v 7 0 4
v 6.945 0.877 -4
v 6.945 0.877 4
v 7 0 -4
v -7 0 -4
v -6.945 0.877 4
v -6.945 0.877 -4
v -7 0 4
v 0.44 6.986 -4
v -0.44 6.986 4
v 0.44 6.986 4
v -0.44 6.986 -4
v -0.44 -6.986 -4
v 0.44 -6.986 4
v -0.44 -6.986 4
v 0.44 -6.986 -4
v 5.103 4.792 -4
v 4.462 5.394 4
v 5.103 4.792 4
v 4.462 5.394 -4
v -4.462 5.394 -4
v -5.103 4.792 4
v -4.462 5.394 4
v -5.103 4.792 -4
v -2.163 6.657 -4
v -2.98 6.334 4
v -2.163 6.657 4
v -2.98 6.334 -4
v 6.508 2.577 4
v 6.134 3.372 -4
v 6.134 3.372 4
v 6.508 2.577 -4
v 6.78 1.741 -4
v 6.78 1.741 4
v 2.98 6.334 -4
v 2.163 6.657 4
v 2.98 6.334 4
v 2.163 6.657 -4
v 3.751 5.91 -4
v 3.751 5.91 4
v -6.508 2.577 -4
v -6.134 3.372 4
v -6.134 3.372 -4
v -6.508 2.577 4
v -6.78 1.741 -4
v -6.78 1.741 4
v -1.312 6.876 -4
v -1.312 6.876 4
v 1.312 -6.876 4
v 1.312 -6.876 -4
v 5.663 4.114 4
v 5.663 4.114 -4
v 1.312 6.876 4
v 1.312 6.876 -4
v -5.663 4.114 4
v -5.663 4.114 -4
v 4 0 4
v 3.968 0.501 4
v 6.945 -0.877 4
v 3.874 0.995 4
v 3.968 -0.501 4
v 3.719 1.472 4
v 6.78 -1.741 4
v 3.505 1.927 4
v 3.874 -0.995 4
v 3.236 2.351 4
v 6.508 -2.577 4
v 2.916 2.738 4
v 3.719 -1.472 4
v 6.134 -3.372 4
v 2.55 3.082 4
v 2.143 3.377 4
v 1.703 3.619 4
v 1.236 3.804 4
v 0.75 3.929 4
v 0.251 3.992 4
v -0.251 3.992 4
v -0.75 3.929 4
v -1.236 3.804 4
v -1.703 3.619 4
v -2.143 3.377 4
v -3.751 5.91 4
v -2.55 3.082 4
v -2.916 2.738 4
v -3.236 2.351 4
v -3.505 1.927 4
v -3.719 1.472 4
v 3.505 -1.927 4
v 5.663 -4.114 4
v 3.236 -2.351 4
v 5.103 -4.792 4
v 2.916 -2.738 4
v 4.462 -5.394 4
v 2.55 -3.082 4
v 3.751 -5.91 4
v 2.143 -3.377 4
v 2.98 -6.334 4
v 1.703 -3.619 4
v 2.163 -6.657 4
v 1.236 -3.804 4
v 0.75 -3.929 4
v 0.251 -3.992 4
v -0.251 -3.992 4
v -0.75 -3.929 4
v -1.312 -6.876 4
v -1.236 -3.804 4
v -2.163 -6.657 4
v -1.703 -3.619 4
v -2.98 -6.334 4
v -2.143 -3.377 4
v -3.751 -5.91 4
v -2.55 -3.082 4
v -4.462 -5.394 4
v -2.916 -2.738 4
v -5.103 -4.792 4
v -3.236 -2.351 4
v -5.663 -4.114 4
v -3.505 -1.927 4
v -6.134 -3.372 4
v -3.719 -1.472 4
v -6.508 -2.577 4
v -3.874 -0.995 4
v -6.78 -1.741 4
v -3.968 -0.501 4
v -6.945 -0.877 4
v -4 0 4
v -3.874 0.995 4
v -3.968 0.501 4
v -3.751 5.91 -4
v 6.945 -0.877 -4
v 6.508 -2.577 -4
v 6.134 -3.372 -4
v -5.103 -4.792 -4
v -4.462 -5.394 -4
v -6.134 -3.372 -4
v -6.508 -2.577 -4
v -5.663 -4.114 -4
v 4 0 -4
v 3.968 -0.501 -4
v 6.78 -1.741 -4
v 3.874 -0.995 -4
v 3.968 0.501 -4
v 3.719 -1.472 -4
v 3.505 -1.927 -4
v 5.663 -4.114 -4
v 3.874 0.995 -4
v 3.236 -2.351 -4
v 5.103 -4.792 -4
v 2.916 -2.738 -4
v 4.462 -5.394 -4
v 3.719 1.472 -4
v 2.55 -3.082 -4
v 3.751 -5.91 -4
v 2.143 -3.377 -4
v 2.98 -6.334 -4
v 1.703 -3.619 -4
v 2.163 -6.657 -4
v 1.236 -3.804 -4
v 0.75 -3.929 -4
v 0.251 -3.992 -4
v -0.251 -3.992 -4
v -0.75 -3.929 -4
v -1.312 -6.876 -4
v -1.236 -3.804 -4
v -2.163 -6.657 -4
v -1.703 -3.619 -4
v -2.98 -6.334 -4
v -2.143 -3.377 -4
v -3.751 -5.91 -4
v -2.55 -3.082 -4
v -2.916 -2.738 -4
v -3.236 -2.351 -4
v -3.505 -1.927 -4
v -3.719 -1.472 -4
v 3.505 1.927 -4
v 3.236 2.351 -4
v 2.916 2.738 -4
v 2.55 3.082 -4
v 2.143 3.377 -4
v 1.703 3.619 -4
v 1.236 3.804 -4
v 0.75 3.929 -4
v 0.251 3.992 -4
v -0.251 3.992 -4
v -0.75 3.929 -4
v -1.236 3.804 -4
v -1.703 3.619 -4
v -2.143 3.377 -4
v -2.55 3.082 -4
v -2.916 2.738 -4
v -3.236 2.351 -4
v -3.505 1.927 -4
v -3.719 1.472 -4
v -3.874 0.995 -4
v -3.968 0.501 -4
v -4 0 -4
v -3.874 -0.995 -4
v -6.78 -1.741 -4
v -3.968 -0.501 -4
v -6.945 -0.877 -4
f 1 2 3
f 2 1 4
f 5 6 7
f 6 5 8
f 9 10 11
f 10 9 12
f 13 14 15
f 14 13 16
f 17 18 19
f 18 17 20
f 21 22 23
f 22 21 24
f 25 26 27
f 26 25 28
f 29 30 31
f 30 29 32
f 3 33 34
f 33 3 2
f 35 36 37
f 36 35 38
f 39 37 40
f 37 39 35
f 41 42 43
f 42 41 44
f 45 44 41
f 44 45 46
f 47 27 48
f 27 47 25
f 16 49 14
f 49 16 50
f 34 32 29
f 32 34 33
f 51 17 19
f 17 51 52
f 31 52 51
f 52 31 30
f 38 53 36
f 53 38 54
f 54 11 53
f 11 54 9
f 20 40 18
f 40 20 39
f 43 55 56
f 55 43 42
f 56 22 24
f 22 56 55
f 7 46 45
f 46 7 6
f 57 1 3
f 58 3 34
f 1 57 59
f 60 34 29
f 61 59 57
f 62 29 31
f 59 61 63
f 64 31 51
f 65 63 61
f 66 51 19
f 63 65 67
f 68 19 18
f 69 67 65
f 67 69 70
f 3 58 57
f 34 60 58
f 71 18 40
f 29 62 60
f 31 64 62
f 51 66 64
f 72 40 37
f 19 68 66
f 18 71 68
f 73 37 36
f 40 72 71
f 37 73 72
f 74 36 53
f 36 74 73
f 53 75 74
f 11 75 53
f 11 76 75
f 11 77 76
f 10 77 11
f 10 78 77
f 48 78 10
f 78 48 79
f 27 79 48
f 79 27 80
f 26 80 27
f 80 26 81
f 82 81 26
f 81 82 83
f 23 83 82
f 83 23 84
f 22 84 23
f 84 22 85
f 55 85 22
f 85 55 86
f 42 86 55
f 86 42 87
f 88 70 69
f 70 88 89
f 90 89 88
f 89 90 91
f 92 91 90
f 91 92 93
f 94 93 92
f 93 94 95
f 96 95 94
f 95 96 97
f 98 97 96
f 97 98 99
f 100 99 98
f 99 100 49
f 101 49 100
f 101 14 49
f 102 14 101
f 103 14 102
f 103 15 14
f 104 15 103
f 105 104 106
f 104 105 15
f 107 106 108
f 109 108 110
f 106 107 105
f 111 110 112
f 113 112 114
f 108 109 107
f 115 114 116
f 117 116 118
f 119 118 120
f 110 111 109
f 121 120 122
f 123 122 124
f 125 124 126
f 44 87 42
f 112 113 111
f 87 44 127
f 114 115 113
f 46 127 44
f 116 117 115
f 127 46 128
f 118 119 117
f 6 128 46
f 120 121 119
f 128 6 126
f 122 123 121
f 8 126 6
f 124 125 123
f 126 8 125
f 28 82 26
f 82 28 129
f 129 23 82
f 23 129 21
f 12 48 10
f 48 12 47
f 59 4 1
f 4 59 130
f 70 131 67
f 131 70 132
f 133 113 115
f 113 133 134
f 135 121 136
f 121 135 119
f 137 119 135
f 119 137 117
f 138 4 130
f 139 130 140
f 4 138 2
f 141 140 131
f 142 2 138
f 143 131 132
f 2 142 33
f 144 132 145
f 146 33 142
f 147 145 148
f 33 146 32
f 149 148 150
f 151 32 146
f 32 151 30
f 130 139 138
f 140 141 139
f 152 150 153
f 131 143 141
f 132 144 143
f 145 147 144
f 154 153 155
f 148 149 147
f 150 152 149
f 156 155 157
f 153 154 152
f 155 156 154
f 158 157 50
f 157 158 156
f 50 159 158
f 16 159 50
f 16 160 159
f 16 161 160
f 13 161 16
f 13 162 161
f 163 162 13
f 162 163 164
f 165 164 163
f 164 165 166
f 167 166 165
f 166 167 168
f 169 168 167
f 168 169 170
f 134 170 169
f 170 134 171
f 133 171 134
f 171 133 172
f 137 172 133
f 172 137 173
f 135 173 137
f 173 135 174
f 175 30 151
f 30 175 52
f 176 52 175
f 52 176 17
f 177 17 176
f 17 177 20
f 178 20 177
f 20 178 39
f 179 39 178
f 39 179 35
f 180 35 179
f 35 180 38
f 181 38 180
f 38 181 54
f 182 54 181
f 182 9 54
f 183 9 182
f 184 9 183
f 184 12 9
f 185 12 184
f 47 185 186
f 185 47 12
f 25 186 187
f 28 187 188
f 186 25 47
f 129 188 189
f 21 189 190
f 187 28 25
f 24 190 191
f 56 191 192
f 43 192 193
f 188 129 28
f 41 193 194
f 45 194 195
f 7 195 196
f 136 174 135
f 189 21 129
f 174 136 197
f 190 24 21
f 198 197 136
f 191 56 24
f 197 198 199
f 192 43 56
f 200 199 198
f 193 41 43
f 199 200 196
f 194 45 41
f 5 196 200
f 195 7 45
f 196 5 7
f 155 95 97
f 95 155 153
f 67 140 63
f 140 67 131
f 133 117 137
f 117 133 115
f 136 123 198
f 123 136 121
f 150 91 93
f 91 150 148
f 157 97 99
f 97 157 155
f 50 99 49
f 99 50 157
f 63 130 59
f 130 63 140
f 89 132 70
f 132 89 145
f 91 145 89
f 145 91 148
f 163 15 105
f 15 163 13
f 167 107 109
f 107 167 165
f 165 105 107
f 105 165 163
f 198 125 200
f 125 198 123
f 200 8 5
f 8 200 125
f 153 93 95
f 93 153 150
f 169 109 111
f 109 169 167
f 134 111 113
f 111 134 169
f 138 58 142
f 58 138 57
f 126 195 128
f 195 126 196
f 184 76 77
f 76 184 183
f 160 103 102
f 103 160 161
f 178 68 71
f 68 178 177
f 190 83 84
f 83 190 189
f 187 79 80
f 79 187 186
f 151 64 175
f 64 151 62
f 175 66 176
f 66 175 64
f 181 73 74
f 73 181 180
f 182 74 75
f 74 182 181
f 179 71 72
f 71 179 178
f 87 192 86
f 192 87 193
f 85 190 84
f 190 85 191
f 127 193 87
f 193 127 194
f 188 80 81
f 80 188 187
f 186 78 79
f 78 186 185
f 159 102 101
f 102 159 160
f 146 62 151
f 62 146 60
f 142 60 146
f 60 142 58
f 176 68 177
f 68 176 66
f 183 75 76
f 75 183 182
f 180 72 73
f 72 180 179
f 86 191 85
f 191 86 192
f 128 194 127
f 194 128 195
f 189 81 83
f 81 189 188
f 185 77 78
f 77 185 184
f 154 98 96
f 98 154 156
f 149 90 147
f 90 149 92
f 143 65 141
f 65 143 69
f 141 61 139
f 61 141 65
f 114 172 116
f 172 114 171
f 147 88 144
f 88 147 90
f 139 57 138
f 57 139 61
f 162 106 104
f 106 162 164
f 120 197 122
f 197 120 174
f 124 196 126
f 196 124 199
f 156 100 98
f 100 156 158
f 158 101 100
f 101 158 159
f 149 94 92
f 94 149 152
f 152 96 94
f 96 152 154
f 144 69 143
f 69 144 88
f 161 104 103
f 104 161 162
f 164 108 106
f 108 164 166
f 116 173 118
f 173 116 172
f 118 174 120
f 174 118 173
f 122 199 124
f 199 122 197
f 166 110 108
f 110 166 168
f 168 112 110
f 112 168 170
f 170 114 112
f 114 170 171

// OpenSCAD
$fn = 50;


difference() {
	union() {
		translate(v = [0, 0, -4.0000000000]) {
			cylinder(h = 8, r = 7.0000000000);
		}
	}
	union() {
		translate(v = [0, 0, -100.0000000000]) {
			cylinder(h = 200, r = 4);
		}
	}
}
